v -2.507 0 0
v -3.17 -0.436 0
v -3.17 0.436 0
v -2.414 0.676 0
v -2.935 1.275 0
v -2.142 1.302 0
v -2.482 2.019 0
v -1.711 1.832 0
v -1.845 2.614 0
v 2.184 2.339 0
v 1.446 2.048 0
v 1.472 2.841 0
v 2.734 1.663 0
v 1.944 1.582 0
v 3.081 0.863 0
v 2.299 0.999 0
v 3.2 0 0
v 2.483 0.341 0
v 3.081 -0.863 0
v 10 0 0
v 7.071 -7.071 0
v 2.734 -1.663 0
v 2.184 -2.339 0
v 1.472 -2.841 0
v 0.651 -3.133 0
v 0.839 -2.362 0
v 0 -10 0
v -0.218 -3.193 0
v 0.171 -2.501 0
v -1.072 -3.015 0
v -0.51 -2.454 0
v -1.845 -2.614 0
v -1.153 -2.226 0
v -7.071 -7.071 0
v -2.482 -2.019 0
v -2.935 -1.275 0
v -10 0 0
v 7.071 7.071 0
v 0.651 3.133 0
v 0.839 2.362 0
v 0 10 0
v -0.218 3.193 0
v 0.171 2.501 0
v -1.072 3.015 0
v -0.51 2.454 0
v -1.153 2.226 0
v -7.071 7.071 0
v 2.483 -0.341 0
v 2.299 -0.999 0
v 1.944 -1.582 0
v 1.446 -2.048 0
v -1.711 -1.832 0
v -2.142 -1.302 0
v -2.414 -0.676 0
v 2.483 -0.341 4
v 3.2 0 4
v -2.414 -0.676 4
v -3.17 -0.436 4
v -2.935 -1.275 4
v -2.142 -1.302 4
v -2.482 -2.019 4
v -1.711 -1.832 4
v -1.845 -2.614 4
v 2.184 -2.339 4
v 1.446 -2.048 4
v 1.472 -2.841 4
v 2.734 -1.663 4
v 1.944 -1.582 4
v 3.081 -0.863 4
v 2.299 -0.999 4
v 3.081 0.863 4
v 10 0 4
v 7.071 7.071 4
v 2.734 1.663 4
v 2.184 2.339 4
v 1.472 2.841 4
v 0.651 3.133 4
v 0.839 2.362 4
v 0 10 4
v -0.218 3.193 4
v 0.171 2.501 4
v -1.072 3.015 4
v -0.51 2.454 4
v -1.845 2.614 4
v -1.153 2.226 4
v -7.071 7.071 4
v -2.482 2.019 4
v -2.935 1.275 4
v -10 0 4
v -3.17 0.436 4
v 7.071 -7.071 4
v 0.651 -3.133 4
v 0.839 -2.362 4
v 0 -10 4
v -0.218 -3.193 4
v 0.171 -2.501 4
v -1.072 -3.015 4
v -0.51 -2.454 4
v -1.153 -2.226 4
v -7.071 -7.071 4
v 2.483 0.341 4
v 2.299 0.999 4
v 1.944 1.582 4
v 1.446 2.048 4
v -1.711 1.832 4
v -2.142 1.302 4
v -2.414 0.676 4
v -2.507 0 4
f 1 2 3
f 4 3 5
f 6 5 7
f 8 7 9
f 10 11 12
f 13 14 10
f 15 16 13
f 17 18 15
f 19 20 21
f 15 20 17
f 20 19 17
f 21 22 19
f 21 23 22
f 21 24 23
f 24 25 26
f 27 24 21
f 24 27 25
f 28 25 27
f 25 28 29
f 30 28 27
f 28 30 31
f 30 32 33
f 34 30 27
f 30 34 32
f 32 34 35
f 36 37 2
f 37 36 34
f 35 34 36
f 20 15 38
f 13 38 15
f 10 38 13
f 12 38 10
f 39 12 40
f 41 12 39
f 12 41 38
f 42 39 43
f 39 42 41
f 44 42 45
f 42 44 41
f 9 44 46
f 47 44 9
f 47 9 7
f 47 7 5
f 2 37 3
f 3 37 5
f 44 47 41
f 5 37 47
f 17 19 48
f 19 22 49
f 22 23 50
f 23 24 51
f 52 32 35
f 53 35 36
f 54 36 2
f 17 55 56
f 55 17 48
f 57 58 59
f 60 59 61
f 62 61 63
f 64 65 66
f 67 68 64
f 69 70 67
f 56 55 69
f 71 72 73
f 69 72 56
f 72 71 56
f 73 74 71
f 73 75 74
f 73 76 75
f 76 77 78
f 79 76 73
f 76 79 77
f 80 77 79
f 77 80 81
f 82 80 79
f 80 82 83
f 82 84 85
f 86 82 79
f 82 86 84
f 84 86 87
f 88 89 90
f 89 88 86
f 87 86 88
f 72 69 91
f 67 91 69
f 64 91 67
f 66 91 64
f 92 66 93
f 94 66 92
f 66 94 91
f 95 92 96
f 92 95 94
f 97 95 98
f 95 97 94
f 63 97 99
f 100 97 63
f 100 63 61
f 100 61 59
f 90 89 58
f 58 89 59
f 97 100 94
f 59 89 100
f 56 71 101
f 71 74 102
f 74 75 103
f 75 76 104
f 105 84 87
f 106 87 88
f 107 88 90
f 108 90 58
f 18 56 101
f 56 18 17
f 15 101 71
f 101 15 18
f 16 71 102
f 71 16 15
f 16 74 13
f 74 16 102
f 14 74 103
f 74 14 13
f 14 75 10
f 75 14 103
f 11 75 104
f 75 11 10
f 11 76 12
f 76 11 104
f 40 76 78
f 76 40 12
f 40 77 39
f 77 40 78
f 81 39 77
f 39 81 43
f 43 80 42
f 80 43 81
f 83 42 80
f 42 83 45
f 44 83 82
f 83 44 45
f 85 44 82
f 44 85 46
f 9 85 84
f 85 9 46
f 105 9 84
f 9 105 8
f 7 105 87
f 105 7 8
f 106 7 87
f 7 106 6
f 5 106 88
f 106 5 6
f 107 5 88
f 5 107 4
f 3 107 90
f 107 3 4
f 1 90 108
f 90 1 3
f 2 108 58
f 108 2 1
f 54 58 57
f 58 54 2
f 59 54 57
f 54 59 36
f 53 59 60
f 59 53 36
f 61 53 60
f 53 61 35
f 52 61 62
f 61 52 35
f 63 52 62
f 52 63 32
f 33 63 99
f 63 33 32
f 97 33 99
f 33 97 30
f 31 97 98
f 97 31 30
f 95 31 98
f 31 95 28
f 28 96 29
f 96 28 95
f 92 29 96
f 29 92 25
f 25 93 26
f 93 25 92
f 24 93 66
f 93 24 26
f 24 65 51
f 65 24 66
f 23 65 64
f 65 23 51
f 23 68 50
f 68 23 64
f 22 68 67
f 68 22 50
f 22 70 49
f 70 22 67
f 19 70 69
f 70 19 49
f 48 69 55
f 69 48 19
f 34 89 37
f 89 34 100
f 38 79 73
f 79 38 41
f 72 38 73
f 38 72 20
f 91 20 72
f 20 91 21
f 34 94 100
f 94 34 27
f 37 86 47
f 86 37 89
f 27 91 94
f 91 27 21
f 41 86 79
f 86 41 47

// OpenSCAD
$fn=90;
toothAngle = 360/23;
height = 4;
leverWidth = 20;

difference(){	
	leverLength = 50;
	leverDepth = 30;
	cylinder(d=leverWidth, h=height, $fn=8);
	#servoAxis(height);
}

module servoAxis(height = 1){
	for(angle = [0:toothAngle:360])
		rotate([0, 0, angle])
			linear_extrude(height)
				tooth();
}

module tooth(){
	triangle();
	rotate([180, 0, 0])
		triangle();
}

module triangle(){
	angleOverlap = 0.1;
	angle = toothAngle/2 + angleOverlap;
	innerRadius = 2.5;
	height = innerRadius * sin(angle);
	a = innerRadius * cos(angle);
	polygon([[0,0], [3.2,0], [a,height]]);
}
